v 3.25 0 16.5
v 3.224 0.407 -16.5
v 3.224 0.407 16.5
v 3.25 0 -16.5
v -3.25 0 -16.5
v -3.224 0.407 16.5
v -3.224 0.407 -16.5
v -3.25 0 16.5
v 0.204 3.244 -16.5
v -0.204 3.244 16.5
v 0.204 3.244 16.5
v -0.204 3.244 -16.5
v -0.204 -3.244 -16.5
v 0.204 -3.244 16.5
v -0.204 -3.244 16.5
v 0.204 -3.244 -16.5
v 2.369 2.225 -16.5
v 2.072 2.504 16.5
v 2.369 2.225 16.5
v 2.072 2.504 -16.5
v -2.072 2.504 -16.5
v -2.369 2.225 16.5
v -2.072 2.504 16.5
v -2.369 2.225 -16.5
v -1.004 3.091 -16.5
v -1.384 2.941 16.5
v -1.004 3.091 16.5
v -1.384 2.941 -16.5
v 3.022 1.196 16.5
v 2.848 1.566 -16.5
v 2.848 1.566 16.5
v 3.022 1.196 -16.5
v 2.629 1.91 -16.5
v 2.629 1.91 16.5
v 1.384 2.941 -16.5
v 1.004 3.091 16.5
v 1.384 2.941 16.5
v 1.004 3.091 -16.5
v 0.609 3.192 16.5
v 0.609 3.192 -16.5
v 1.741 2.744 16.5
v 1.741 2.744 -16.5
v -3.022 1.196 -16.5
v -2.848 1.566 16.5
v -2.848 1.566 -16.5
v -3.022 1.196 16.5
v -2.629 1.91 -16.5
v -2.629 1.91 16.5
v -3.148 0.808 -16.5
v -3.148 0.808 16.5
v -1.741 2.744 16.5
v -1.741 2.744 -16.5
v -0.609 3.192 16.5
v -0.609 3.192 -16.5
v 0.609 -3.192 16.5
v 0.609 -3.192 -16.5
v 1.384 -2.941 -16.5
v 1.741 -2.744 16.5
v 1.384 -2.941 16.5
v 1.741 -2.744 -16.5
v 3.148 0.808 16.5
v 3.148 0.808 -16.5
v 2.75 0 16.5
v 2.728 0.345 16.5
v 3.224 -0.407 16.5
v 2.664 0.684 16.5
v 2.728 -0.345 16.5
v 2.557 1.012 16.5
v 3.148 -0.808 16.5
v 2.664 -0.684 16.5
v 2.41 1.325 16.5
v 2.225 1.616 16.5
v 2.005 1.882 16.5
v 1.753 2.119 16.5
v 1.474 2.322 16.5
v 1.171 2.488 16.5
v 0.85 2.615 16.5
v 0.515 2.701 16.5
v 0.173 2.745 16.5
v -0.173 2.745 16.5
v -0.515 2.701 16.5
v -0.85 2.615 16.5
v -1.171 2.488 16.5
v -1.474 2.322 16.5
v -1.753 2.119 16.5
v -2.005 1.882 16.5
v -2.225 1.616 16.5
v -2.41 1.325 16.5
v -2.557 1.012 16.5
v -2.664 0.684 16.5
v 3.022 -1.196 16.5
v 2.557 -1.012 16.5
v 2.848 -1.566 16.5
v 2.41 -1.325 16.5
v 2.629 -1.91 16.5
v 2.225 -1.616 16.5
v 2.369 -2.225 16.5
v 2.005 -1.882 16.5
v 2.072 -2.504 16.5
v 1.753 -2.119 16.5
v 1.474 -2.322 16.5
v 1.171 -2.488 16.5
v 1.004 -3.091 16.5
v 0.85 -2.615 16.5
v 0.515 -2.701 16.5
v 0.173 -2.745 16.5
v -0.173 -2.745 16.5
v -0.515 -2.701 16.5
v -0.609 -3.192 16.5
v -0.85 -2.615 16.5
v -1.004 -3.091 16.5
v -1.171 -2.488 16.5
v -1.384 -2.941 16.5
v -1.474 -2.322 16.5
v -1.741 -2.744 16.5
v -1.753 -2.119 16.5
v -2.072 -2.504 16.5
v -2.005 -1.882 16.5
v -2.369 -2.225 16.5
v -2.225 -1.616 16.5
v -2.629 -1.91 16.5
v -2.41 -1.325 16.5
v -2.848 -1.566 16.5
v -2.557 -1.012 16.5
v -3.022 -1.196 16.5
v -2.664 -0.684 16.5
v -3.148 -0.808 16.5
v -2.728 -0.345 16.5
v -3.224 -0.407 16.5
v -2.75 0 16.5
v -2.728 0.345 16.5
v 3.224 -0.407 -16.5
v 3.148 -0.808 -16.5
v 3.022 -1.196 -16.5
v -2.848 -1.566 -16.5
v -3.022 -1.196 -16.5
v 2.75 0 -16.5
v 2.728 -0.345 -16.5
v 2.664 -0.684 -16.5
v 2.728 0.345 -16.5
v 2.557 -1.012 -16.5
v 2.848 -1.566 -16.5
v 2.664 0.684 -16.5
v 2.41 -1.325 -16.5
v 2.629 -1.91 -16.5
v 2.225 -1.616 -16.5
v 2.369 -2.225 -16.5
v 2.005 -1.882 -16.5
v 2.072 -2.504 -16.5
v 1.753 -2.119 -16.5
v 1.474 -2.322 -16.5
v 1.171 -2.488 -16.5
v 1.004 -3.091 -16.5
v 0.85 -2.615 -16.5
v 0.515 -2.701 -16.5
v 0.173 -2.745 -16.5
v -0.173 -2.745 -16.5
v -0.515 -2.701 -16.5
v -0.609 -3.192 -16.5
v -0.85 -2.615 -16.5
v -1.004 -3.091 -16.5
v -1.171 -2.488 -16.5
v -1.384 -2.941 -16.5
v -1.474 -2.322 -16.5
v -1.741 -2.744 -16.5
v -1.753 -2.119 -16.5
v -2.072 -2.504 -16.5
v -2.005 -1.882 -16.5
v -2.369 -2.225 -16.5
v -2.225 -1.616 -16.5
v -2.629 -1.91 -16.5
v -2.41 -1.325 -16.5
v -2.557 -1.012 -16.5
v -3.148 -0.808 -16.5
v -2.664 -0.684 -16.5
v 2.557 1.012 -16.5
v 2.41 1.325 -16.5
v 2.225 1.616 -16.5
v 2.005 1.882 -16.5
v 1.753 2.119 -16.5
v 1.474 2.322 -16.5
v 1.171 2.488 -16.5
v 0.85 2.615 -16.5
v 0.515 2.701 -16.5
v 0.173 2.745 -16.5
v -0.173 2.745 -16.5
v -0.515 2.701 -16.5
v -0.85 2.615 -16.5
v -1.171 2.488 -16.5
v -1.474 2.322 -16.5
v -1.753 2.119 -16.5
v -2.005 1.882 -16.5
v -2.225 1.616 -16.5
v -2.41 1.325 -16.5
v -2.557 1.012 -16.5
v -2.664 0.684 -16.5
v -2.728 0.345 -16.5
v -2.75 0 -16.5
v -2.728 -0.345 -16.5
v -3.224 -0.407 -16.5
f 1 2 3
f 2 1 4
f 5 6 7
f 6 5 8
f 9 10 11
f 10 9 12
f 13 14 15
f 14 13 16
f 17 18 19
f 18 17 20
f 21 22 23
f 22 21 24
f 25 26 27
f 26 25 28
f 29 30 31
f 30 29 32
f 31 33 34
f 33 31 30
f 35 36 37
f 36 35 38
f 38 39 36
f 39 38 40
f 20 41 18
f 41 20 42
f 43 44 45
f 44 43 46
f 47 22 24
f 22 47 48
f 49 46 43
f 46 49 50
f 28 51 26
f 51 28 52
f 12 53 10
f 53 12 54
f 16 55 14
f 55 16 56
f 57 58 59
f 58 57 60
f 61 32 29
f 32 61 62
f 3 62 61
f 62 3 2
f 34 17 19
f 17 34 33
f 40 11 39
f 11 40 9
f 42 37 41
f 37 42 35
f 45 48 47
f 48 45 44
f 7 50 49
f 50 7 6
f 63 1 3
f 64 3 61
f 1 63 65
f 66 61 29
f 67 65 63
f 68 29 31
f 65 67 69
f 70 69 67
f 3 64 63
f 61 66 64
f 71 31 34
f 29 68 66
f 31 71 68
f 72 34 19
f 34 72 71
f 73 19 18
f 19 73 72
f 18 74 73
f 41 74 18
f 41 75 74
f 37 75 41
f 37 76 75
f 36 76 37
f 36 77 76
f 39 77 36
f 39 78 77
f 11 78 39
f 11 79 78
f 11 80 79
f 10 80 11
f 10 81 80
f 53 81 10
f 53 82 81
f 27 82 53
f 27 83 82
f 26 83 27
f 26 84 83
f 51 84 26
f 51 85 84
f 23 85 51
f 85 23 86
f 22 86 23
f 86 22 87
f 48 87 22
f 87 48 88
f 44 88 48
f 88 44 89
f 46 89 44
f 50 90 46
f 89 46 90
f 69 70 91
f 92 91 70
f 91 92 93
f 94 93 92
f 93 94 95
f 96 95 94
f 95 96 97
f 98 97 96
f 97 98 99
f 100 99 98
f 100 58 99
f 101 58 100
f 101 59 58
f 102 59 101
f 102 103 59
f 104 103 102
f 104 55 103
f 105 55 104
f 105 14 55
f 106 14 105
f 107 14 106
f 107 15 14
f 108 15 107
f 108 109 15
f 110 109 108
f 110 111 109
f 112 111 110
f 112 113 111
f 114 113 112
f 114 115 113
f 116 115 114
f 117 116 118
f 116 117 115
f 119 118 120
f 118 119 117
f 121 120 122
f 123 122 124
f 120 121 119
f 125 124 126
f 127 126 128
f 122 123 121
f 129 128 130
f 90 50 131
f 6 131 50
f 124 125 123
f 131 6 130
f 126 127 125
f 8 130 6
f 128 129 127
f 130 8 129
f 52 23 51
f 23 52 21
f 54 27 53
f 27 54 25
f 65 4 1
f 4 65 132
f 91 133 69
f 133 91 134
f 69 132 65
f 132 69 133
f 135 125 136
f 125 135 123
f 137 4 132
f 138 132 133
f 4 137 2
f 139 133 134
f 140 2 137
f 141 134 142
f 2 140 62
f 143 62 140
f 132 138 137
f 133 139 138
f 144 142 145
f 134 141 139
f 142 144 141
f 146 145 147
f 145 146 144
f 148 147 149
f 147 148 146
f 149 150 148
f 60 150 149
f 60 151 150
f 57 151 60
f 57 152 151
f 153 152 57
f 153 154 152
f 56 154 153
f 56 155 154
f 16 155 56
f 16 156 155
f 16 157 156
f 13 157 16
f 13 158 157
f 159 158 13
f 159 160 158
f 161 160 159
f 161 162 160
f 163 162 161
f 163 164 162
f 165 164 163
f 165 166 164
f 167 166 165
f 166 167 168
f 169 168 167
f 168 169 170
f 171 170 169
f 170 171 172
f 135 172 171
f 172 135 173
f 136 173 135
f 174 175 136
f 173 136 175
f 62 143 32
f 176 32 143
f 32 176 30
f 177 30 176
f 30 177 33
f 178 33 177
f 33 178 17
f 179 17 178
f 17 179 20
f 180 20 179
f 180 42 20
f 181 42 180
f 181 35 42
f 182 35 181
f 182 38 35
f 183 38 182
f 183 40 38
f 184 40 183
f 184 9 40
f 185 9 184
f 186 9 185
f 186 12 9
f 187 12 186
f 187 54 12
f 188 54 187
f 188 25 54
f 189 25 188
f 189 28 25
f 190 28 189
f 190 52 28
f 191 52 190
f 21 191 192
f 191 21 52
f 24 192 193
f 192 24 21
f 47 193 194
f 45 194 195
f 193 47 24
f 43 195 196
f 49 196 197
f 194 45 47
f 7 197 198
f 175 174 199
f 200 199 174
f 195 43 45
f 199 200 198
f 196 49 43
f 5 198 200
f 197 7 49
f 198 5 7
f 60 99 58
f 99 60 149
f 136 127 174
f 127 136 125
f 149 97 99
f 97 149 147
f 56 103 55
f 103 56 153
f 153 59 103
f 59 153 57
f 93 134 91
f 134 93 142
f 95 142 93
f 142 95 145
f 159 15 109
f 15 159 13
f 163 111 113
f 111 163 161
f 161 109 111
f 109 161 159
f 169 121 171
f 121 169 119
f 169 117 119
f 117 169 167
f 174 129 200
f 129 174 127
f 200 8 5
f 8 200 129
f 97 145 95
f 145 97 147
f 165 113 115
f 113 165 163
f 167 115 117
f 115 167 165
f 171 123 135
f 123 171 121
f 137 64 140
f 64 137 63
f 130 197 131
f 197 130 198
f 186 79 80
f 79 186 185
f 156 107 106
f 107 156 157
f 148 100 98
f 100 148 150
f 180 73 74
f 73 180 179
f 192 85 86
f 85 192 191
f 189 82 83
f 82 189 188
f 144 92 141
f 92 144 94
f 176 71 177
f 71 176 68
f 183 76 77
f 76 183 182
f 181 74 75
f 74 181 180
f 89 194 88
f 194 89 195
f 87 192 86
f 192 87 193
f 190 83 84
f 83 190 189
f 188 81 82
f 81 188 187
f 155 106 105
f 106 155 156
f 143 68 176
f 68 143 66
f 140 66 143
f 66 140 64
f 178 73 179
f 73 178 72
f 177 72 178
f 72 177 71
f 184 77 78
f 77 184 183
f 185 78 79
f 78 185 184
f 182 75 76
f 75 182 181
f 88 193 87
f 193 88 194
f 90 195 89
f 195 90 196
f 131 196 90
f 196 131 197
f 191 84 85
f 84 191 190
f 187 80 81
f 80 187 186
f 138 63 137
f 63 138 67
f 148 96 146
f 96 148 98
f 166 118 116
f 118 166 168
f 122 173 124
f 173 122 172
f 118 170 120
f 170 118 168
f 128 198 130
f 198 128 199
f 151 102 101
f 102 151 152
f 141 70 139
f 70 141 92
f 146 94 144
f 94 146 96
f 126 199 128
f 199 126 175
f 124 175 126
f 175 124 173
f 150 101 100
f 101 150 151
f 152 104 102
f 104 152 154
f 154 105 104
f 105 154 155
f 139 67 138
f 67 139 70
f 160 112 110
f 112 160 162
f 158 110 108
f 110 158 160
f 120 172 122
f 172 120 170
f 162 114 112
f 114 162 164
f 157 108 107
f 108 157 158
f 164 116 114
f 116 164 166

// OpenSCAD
$fn = 50;


difference() {
	union() {
		translate(v = [0, 0, -16.5000000000]) {
			cylinder(h = 33, r = 3.2500000000);
		}
	}
	union() {
		translate(v = [0, 0, -100.0000000000]) {
			cylinder(h = 200, r = 2.7500000000);
		}
	}
}
